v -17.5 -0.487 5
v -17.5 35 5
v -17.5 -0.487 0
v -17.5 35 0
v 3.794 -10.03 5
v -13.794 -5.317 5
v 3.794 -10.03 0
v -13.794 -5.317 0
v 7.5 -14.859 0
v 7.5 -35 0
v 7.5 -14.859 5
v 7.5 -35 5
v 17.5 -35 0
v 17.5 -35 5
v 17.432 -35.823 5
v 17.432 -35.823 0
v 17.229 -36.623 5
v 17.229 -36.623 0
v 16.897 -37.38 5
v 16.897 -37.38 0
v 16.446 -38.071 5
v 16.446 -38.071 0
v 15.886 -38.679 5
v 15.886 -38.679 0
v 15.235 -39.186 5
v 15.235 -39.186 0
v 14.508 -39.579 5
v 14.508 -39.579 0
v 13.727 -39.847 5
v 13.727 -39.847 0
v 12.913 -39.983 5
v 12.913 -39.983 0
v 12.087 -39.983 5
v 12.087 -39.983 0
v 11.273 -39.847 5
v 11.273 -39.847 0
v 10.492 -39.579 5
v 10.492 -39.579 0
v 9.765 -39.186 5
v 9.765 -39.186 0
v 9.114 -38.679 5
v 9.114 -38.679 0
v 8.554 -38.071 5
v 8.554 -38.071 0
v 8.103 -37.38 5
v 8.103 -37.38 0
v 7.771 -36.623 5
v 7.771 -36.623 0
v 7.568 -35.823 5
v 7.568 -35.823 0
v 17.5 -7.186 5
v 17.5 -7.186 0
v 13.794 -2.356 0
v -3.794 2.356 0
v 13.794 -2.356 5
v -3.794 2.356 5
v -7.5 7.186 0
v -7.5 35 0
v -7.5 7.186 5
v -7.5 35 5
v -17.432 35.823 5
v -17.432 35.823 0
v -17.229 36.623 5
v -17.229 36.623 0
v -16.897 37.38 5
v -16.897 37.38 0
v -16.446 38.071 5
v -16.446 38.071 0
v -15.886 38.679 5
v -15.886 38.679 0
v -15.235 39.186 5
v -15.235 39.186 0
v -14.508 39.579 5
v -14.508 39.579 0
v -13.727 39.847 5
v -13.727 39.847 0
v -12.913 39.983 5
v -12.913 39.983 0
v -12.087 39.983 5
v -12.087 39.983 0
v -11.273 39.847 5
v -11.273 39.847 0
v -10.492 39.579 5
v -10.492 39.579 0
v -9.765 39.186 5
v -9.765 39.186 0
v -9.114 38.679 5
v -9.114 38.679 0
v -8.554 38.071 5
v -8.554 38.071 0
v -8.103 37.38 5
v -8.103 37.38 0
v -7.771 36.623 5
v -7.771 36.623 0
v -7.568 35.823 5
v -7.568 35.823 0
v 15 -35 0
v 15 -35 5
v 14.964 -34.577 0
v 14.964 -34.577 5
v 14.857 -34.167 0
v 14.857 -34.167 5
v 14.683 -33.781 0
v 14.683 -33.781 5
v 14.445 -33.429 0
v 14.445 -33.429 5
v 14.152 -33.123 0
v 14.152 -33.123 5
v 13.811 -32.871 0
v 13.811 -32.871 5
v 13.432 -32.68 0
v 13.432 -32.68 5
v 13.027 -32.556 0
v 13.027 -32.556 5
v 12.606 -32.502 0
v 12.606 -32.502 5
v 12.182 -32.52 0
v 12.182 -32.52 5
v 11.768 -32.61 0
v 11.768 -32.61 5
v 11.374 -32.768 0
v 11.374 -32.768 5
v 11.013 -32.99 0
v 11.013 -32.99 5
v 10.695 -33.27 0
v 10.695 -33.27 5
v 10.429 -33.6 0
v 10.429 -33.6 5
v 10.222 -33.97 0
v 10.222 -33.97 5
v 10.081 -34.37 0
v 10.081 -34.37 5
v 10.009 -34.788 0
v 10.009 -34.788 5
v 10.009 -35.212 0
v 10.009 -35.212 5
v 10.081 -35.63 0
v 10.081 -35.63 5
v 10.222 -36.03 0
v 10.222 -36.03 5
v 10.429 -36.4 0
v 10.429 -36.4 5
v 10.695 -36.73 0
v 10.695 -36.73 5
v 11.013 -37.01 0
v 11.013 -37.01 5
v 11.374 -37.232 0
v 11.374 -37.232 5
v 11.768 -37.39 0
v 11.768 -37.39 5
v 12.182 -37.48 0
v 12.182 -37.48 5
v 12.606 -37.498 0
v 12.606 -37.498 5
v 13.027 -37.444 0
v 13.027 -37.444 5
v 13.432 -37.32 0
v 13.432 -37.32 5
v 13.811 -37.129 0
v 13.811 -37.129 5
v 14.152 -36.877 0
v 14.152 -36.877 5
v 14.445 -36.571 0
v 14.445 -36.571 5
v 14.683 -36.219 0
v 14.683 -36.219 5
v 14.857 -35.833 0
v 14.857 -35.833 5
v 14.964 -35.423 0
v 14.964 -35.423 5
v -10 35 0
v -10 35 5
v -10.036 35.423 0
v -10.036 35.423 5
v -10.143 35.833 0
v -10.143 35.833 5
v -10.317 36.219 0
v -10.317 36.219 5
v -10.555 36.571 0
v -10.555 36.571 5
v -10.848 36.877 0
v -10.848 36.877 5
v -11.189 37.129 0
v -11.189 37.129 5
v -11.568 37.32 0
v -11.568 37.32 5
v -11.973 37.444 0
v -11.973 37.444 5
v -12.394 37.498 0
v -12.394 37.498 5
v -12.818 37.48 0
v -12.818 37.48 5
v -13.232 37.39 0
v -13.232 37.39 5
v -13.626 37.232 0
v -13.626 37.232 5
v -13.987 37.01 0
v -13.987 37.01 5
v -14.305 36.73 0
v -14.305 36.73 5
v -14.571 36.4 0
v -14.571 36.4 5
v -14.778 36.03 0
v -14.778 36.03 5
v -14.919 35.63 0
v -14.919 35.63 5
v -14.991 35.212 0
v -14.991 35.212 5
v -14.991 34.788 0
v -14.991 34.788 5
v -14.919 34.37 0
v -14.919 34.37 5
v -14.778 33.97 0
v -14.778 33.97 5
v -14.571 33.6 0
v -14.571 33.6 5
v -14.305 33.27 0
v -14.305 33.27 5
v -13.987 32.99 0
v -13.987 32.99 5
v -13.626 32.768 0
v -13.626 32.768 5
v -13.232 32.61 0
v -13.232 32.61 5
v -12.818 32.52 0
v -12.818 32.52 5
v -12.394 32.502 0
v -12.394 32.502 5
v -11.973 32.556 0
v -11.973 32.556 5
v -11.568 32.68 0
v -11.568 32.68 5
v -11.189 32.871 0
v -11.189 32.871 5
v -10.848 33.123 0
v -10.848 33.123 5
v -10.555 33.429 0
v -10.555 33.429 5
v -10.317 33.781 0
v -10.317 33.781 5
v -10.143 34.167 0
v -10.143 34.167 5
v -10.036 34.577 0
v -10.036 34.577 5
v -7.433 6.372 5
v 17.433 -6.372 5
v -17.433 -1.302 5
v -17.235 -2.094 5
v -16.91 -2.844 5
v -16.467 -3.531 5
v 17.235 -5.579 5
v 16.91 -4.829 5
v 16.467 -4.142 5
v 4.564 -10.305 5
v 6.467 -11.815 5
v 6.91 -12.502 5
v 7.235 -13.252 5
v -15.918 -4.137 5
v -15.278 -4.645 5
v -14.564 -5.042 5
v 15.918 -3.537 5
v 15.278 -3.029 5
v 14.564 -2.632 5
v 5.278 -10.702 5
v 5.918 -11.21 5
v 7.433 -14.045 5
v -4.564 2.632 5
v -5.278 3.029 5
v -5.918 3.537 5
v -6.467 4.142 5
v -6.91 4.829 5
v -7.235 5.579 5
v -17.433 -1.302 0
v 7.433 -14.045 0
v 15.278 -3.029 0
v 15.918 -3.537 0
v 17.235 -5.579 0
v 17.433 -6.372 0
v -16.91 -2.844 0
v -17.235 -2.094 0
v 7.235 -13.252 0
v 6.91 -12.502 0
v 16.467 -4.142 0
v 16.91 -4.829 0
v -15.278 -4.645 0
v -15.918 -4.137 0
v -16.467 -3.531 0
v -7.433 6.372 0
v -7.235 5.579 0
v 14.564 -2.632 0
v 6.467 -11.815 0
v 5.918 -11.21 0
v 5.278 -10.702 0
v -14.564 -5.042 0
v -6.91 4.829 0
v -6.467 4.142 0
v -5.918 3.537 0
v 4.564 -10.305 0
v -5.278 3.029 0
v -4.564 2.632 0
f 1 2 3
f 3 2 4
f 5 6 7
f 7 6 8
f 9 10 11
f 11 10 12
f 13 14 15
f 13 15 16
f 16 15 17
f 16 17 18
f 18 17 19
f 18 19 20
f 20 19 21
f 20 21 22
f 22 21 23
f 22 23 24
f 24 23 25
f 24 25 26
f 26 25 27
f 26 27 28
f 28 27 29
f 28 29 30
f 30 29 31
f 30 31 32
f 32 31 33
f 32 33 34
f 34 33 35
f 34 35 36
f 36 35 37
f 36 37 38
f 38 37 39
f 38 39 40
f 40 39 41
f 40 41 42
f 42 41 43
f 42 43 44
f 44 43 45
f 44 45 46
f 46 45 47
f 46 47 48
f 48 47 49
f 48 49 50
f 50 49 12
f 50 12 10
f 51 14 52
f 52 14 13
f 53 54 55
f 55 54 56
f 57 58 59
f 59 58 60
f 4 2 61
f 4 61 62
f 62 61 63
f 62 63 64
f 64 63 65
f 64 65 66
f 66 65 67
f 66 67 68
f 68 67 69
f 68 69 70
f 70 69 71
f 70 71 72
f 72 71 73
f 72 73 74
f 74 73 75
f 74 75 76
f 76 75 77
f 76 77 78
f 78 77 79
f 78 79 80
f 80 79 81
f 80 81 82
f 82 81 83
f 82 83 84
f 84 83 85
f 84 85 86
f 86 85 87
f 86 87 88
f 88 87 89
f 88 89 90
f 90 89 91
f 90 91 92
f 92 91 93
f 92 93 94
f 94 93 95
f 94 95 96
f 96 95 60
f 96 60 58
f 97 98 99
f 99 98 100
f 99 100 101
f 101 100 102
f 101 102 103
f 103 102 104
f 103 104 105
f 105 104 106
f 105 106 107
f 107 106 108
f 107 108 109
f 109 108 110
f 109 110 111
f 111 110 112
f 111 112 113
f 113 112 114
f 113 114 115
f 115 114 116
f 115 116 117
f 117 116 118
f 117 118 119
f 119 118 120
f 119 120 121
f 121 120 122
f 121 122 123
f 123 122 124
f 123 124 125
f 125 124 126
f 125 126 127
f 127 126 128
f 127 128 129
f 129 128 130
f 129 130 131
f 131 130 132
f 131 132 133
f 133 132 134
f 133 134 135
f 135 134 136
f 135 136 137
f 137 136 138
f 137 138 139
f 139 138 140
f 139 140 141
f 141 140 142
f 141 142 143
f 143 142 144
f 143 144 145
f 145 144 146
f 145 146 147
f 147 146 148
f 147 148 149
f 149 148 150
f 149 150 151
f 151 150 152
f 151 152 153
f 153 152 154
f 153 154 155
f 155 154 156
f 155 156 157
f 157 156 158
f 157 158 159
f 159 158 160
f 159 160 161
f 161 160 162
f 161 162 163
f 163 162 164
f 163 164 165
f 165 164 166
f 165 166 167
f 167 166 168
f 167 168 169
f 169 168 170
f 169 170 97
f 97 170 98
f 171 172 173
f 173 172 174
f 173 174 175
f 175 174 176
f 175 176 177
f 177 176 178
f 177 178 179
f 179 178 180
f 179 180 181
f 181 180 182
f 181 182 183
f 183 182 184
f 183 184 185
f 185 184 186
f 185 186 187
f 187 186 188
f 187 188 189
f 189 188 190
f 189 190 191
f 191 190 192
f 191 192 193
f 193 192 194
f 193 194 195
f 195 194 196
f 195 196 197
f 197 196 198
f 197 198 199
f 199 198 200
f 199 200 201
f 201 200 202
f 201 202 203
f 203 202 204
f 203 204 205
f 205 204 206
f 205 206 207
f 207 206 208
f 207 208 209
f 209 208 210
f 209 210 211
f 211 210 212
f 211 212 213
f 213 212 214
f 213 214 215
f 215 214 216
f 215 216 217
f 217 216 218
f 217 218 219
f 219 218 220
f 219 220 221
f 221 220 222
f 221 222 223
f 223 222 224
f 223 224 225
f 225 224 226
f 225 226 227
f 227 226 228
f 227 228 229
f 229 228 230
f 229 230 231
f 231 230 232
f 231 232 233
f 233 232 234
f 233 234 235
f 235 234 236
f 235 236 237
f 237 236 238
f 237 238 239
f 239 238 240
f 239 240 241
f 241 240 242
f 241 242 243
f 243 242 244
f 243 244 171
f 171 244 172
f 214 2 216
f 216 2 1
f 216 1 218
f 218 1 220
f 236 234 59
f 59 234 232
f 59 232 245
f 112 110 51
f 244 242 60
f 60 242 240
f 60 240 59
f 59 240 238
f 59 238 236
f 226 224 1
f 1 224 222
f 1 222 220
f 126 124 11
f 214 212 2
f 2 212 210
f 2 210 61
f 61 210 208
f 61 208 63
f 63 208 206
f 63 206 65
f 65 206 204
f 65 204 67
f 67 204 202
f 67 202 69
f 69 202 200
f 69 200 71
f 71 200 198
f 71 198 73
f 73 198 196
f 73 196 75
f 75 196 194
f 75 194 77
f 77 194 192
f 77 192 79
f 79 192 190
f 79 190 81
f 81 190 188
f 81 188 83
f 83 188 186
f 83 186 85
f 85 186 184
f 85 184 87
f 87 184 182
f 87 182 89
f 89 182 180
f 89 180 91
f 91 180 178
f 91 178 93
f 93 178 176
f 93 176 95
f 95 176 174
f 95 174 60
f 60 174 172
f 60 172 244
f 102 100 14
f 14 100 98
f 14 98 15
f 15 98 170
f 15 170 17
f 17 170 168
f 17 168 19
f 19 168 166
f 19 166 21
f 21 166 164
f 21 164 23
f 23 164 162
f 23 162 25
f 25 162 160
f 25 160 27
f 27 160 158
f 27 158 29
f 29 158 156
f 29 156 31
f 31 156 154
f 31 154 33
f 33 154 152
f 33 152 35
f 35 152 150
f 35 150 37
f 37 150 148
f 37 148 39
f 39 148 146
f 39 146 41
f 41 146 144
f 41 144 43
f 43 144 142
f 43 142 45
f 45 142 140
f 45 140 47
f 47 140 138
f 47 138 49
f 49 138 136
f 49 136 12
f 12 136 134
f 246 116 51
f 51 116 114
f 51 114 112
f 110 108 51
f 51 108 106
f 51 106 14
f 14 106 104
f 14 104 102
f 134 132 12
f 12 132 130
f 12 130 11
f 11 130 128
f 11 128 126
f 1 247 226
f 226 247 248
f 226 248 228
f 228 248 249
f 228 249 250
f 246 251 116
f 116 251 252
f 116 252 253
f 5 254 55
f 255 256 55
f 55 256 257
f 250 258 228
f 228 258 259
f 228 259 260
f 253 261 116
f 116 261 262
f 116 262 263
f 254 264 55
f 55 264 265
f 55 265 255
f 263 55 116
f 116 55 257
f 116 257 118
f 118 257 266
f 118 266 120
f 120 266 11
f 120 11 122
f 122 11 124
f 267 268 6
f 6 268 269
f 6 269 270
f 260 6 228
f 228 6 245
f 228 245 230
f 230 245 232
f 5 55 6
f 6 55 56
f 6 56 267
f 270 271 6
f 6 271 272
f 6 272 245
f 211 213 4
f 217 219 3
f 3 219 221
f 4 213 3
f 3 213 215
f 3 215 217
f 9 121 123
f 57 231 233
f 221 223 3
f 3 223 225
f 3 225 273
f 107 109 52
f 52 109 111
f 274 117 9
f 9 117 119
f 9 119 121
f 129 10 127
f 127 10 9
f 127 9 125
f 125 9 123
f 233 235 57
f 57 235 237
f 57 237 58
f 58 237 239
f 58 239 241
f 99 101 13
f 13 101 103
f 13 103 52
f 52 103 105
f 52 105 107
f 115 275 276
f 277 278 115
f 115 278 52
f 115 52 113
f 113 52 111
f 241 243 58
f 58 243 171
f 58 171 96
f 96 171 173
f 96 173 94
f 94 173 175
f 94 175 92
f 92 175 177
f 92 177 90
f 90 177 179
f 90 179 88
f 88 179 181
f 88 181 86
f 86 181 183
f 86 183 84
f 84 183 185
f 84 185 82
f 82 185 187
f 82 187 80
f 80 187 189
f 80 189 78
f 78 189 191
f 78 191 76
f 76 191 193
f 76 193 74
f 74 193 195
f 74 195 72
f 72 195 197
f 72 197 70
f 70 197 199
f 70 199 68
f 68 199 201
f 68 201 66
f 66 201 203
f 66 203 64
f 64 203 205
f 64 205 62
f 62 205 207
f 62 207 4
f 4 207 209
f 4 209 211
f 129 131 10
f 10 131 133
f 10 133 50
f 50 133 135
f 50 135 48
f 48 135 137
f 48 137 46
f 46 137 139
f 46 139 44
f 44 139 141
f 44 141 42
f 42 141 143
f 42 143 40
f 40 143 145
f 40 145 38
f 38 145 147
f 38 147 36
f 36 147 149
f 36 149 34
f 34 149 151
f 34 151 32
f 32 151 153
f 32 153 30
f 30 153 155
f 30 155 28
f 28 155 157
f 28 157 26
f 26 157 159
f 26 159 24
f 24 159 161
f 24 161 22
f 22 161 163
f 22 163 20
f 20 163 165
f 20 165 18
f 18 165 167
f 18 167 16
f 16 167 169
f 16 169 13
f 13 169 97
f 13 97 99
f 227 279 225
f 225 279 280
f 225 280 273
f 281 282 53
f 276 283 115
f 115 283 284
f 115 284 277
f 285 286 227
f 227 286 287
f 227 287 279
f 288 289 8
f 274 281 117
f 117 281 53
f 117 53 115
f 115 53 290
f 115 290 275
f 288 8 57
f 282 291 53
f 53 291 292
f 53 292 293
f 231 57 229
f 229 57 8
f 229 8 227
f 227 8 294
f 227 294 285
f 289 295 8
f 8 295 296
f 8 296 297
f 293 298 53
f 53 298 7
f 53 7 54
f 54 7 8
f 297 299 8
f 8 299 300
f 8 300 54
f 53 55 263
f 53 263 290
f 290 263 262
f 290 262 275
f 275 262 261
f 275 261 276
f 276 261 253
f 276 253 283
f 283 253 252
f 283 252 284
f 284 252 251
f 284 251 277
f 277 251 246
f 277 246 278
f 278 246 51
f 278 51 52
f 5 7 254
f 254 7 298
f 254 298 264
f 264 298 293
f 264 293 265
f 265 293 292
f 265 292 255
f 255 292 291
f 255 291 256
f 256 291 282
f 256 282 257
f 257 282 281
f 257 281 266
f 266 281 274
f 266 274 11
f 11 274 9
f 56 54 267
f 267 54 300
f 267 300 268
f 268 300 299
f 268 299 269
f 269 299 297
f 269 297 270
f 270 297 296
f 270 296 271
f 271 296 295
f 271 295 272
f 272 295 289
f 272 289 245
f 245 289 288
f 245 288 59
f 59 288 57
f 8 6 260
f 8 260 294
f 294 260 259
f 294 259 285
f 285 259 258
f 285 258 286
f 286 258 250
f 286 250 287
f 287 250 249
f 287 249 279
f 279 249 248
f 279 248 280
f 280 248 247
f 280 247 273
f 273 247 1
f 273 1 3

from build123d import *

# Parameters (mm, degrees)
SKETCH1_R           = 5
SKETCH1_R_2         = 2.5
BOSS_EXTRUDE1_DEPTH = 5
FILLET1_R           = 5


with BuildPart() as part:
    # Sketch1 → Boss-Extrude1 (new body)
    # profile 1 of 3: a face of its own
    with BuildSketch(Plane.XY):
        with BuildLine():
            Line((-7.5, 3.349364905), (-7.5, 35))
            ThreePointArc((-7.5, 35), (-12.5, 30), (-17.5, 35))
            Line((-17.5, 35), (-17.5, -4.323904974))
            Line((-17.5, -4.323904974), (7.5, -11.022634785))
            Line((7.5, -11.022634785), (7.5, -35))
            ThreePointArc((7.5, -35), (12.5, -30), (17.5, -35))
            Line((17.5, -35), (17.5, -3.349364905))
            Line((17.5, -3.349364905), (-7.5, 3.349364905))
        make_face()
    # profile 2 of 3: a face of its own
    with BuildSketch(Plane.XY):
        with Locations((-12.5, 35)):
            Circle(SKETCH1_R)
        with Locations((-12.5, 35)):
            Circle(SKETCH1_R_2, mode=Mode.SUBTRACT)
    # profile 3 of 3: a face of its own
    with BuildSketch(Plane.XY):
        with Locations((12.5, -35)):
            Circle(SKETCH1_R)
        with Locations((12.5, -35)):
            Circle(SKETCH1_R_2, mode=Mode.SUBTRACT)
    extrude(amount=BOSS_EXTRUDE1_DEPTH)

    # Fillet1
    fillet1_edges = [part.edges().sort_by_distance(p)[0] for p in [
        (-7.5, 3.349364905, 2.5),
        (17.5, -3.349364905, 2.5),
        (7.5, -11.022634785, 2.5),
        (-17.5, -4.323904974, 2.5),
    ]]
    fillet(fillet1_edges, radius=FILLET1_R)


solid = part.part
